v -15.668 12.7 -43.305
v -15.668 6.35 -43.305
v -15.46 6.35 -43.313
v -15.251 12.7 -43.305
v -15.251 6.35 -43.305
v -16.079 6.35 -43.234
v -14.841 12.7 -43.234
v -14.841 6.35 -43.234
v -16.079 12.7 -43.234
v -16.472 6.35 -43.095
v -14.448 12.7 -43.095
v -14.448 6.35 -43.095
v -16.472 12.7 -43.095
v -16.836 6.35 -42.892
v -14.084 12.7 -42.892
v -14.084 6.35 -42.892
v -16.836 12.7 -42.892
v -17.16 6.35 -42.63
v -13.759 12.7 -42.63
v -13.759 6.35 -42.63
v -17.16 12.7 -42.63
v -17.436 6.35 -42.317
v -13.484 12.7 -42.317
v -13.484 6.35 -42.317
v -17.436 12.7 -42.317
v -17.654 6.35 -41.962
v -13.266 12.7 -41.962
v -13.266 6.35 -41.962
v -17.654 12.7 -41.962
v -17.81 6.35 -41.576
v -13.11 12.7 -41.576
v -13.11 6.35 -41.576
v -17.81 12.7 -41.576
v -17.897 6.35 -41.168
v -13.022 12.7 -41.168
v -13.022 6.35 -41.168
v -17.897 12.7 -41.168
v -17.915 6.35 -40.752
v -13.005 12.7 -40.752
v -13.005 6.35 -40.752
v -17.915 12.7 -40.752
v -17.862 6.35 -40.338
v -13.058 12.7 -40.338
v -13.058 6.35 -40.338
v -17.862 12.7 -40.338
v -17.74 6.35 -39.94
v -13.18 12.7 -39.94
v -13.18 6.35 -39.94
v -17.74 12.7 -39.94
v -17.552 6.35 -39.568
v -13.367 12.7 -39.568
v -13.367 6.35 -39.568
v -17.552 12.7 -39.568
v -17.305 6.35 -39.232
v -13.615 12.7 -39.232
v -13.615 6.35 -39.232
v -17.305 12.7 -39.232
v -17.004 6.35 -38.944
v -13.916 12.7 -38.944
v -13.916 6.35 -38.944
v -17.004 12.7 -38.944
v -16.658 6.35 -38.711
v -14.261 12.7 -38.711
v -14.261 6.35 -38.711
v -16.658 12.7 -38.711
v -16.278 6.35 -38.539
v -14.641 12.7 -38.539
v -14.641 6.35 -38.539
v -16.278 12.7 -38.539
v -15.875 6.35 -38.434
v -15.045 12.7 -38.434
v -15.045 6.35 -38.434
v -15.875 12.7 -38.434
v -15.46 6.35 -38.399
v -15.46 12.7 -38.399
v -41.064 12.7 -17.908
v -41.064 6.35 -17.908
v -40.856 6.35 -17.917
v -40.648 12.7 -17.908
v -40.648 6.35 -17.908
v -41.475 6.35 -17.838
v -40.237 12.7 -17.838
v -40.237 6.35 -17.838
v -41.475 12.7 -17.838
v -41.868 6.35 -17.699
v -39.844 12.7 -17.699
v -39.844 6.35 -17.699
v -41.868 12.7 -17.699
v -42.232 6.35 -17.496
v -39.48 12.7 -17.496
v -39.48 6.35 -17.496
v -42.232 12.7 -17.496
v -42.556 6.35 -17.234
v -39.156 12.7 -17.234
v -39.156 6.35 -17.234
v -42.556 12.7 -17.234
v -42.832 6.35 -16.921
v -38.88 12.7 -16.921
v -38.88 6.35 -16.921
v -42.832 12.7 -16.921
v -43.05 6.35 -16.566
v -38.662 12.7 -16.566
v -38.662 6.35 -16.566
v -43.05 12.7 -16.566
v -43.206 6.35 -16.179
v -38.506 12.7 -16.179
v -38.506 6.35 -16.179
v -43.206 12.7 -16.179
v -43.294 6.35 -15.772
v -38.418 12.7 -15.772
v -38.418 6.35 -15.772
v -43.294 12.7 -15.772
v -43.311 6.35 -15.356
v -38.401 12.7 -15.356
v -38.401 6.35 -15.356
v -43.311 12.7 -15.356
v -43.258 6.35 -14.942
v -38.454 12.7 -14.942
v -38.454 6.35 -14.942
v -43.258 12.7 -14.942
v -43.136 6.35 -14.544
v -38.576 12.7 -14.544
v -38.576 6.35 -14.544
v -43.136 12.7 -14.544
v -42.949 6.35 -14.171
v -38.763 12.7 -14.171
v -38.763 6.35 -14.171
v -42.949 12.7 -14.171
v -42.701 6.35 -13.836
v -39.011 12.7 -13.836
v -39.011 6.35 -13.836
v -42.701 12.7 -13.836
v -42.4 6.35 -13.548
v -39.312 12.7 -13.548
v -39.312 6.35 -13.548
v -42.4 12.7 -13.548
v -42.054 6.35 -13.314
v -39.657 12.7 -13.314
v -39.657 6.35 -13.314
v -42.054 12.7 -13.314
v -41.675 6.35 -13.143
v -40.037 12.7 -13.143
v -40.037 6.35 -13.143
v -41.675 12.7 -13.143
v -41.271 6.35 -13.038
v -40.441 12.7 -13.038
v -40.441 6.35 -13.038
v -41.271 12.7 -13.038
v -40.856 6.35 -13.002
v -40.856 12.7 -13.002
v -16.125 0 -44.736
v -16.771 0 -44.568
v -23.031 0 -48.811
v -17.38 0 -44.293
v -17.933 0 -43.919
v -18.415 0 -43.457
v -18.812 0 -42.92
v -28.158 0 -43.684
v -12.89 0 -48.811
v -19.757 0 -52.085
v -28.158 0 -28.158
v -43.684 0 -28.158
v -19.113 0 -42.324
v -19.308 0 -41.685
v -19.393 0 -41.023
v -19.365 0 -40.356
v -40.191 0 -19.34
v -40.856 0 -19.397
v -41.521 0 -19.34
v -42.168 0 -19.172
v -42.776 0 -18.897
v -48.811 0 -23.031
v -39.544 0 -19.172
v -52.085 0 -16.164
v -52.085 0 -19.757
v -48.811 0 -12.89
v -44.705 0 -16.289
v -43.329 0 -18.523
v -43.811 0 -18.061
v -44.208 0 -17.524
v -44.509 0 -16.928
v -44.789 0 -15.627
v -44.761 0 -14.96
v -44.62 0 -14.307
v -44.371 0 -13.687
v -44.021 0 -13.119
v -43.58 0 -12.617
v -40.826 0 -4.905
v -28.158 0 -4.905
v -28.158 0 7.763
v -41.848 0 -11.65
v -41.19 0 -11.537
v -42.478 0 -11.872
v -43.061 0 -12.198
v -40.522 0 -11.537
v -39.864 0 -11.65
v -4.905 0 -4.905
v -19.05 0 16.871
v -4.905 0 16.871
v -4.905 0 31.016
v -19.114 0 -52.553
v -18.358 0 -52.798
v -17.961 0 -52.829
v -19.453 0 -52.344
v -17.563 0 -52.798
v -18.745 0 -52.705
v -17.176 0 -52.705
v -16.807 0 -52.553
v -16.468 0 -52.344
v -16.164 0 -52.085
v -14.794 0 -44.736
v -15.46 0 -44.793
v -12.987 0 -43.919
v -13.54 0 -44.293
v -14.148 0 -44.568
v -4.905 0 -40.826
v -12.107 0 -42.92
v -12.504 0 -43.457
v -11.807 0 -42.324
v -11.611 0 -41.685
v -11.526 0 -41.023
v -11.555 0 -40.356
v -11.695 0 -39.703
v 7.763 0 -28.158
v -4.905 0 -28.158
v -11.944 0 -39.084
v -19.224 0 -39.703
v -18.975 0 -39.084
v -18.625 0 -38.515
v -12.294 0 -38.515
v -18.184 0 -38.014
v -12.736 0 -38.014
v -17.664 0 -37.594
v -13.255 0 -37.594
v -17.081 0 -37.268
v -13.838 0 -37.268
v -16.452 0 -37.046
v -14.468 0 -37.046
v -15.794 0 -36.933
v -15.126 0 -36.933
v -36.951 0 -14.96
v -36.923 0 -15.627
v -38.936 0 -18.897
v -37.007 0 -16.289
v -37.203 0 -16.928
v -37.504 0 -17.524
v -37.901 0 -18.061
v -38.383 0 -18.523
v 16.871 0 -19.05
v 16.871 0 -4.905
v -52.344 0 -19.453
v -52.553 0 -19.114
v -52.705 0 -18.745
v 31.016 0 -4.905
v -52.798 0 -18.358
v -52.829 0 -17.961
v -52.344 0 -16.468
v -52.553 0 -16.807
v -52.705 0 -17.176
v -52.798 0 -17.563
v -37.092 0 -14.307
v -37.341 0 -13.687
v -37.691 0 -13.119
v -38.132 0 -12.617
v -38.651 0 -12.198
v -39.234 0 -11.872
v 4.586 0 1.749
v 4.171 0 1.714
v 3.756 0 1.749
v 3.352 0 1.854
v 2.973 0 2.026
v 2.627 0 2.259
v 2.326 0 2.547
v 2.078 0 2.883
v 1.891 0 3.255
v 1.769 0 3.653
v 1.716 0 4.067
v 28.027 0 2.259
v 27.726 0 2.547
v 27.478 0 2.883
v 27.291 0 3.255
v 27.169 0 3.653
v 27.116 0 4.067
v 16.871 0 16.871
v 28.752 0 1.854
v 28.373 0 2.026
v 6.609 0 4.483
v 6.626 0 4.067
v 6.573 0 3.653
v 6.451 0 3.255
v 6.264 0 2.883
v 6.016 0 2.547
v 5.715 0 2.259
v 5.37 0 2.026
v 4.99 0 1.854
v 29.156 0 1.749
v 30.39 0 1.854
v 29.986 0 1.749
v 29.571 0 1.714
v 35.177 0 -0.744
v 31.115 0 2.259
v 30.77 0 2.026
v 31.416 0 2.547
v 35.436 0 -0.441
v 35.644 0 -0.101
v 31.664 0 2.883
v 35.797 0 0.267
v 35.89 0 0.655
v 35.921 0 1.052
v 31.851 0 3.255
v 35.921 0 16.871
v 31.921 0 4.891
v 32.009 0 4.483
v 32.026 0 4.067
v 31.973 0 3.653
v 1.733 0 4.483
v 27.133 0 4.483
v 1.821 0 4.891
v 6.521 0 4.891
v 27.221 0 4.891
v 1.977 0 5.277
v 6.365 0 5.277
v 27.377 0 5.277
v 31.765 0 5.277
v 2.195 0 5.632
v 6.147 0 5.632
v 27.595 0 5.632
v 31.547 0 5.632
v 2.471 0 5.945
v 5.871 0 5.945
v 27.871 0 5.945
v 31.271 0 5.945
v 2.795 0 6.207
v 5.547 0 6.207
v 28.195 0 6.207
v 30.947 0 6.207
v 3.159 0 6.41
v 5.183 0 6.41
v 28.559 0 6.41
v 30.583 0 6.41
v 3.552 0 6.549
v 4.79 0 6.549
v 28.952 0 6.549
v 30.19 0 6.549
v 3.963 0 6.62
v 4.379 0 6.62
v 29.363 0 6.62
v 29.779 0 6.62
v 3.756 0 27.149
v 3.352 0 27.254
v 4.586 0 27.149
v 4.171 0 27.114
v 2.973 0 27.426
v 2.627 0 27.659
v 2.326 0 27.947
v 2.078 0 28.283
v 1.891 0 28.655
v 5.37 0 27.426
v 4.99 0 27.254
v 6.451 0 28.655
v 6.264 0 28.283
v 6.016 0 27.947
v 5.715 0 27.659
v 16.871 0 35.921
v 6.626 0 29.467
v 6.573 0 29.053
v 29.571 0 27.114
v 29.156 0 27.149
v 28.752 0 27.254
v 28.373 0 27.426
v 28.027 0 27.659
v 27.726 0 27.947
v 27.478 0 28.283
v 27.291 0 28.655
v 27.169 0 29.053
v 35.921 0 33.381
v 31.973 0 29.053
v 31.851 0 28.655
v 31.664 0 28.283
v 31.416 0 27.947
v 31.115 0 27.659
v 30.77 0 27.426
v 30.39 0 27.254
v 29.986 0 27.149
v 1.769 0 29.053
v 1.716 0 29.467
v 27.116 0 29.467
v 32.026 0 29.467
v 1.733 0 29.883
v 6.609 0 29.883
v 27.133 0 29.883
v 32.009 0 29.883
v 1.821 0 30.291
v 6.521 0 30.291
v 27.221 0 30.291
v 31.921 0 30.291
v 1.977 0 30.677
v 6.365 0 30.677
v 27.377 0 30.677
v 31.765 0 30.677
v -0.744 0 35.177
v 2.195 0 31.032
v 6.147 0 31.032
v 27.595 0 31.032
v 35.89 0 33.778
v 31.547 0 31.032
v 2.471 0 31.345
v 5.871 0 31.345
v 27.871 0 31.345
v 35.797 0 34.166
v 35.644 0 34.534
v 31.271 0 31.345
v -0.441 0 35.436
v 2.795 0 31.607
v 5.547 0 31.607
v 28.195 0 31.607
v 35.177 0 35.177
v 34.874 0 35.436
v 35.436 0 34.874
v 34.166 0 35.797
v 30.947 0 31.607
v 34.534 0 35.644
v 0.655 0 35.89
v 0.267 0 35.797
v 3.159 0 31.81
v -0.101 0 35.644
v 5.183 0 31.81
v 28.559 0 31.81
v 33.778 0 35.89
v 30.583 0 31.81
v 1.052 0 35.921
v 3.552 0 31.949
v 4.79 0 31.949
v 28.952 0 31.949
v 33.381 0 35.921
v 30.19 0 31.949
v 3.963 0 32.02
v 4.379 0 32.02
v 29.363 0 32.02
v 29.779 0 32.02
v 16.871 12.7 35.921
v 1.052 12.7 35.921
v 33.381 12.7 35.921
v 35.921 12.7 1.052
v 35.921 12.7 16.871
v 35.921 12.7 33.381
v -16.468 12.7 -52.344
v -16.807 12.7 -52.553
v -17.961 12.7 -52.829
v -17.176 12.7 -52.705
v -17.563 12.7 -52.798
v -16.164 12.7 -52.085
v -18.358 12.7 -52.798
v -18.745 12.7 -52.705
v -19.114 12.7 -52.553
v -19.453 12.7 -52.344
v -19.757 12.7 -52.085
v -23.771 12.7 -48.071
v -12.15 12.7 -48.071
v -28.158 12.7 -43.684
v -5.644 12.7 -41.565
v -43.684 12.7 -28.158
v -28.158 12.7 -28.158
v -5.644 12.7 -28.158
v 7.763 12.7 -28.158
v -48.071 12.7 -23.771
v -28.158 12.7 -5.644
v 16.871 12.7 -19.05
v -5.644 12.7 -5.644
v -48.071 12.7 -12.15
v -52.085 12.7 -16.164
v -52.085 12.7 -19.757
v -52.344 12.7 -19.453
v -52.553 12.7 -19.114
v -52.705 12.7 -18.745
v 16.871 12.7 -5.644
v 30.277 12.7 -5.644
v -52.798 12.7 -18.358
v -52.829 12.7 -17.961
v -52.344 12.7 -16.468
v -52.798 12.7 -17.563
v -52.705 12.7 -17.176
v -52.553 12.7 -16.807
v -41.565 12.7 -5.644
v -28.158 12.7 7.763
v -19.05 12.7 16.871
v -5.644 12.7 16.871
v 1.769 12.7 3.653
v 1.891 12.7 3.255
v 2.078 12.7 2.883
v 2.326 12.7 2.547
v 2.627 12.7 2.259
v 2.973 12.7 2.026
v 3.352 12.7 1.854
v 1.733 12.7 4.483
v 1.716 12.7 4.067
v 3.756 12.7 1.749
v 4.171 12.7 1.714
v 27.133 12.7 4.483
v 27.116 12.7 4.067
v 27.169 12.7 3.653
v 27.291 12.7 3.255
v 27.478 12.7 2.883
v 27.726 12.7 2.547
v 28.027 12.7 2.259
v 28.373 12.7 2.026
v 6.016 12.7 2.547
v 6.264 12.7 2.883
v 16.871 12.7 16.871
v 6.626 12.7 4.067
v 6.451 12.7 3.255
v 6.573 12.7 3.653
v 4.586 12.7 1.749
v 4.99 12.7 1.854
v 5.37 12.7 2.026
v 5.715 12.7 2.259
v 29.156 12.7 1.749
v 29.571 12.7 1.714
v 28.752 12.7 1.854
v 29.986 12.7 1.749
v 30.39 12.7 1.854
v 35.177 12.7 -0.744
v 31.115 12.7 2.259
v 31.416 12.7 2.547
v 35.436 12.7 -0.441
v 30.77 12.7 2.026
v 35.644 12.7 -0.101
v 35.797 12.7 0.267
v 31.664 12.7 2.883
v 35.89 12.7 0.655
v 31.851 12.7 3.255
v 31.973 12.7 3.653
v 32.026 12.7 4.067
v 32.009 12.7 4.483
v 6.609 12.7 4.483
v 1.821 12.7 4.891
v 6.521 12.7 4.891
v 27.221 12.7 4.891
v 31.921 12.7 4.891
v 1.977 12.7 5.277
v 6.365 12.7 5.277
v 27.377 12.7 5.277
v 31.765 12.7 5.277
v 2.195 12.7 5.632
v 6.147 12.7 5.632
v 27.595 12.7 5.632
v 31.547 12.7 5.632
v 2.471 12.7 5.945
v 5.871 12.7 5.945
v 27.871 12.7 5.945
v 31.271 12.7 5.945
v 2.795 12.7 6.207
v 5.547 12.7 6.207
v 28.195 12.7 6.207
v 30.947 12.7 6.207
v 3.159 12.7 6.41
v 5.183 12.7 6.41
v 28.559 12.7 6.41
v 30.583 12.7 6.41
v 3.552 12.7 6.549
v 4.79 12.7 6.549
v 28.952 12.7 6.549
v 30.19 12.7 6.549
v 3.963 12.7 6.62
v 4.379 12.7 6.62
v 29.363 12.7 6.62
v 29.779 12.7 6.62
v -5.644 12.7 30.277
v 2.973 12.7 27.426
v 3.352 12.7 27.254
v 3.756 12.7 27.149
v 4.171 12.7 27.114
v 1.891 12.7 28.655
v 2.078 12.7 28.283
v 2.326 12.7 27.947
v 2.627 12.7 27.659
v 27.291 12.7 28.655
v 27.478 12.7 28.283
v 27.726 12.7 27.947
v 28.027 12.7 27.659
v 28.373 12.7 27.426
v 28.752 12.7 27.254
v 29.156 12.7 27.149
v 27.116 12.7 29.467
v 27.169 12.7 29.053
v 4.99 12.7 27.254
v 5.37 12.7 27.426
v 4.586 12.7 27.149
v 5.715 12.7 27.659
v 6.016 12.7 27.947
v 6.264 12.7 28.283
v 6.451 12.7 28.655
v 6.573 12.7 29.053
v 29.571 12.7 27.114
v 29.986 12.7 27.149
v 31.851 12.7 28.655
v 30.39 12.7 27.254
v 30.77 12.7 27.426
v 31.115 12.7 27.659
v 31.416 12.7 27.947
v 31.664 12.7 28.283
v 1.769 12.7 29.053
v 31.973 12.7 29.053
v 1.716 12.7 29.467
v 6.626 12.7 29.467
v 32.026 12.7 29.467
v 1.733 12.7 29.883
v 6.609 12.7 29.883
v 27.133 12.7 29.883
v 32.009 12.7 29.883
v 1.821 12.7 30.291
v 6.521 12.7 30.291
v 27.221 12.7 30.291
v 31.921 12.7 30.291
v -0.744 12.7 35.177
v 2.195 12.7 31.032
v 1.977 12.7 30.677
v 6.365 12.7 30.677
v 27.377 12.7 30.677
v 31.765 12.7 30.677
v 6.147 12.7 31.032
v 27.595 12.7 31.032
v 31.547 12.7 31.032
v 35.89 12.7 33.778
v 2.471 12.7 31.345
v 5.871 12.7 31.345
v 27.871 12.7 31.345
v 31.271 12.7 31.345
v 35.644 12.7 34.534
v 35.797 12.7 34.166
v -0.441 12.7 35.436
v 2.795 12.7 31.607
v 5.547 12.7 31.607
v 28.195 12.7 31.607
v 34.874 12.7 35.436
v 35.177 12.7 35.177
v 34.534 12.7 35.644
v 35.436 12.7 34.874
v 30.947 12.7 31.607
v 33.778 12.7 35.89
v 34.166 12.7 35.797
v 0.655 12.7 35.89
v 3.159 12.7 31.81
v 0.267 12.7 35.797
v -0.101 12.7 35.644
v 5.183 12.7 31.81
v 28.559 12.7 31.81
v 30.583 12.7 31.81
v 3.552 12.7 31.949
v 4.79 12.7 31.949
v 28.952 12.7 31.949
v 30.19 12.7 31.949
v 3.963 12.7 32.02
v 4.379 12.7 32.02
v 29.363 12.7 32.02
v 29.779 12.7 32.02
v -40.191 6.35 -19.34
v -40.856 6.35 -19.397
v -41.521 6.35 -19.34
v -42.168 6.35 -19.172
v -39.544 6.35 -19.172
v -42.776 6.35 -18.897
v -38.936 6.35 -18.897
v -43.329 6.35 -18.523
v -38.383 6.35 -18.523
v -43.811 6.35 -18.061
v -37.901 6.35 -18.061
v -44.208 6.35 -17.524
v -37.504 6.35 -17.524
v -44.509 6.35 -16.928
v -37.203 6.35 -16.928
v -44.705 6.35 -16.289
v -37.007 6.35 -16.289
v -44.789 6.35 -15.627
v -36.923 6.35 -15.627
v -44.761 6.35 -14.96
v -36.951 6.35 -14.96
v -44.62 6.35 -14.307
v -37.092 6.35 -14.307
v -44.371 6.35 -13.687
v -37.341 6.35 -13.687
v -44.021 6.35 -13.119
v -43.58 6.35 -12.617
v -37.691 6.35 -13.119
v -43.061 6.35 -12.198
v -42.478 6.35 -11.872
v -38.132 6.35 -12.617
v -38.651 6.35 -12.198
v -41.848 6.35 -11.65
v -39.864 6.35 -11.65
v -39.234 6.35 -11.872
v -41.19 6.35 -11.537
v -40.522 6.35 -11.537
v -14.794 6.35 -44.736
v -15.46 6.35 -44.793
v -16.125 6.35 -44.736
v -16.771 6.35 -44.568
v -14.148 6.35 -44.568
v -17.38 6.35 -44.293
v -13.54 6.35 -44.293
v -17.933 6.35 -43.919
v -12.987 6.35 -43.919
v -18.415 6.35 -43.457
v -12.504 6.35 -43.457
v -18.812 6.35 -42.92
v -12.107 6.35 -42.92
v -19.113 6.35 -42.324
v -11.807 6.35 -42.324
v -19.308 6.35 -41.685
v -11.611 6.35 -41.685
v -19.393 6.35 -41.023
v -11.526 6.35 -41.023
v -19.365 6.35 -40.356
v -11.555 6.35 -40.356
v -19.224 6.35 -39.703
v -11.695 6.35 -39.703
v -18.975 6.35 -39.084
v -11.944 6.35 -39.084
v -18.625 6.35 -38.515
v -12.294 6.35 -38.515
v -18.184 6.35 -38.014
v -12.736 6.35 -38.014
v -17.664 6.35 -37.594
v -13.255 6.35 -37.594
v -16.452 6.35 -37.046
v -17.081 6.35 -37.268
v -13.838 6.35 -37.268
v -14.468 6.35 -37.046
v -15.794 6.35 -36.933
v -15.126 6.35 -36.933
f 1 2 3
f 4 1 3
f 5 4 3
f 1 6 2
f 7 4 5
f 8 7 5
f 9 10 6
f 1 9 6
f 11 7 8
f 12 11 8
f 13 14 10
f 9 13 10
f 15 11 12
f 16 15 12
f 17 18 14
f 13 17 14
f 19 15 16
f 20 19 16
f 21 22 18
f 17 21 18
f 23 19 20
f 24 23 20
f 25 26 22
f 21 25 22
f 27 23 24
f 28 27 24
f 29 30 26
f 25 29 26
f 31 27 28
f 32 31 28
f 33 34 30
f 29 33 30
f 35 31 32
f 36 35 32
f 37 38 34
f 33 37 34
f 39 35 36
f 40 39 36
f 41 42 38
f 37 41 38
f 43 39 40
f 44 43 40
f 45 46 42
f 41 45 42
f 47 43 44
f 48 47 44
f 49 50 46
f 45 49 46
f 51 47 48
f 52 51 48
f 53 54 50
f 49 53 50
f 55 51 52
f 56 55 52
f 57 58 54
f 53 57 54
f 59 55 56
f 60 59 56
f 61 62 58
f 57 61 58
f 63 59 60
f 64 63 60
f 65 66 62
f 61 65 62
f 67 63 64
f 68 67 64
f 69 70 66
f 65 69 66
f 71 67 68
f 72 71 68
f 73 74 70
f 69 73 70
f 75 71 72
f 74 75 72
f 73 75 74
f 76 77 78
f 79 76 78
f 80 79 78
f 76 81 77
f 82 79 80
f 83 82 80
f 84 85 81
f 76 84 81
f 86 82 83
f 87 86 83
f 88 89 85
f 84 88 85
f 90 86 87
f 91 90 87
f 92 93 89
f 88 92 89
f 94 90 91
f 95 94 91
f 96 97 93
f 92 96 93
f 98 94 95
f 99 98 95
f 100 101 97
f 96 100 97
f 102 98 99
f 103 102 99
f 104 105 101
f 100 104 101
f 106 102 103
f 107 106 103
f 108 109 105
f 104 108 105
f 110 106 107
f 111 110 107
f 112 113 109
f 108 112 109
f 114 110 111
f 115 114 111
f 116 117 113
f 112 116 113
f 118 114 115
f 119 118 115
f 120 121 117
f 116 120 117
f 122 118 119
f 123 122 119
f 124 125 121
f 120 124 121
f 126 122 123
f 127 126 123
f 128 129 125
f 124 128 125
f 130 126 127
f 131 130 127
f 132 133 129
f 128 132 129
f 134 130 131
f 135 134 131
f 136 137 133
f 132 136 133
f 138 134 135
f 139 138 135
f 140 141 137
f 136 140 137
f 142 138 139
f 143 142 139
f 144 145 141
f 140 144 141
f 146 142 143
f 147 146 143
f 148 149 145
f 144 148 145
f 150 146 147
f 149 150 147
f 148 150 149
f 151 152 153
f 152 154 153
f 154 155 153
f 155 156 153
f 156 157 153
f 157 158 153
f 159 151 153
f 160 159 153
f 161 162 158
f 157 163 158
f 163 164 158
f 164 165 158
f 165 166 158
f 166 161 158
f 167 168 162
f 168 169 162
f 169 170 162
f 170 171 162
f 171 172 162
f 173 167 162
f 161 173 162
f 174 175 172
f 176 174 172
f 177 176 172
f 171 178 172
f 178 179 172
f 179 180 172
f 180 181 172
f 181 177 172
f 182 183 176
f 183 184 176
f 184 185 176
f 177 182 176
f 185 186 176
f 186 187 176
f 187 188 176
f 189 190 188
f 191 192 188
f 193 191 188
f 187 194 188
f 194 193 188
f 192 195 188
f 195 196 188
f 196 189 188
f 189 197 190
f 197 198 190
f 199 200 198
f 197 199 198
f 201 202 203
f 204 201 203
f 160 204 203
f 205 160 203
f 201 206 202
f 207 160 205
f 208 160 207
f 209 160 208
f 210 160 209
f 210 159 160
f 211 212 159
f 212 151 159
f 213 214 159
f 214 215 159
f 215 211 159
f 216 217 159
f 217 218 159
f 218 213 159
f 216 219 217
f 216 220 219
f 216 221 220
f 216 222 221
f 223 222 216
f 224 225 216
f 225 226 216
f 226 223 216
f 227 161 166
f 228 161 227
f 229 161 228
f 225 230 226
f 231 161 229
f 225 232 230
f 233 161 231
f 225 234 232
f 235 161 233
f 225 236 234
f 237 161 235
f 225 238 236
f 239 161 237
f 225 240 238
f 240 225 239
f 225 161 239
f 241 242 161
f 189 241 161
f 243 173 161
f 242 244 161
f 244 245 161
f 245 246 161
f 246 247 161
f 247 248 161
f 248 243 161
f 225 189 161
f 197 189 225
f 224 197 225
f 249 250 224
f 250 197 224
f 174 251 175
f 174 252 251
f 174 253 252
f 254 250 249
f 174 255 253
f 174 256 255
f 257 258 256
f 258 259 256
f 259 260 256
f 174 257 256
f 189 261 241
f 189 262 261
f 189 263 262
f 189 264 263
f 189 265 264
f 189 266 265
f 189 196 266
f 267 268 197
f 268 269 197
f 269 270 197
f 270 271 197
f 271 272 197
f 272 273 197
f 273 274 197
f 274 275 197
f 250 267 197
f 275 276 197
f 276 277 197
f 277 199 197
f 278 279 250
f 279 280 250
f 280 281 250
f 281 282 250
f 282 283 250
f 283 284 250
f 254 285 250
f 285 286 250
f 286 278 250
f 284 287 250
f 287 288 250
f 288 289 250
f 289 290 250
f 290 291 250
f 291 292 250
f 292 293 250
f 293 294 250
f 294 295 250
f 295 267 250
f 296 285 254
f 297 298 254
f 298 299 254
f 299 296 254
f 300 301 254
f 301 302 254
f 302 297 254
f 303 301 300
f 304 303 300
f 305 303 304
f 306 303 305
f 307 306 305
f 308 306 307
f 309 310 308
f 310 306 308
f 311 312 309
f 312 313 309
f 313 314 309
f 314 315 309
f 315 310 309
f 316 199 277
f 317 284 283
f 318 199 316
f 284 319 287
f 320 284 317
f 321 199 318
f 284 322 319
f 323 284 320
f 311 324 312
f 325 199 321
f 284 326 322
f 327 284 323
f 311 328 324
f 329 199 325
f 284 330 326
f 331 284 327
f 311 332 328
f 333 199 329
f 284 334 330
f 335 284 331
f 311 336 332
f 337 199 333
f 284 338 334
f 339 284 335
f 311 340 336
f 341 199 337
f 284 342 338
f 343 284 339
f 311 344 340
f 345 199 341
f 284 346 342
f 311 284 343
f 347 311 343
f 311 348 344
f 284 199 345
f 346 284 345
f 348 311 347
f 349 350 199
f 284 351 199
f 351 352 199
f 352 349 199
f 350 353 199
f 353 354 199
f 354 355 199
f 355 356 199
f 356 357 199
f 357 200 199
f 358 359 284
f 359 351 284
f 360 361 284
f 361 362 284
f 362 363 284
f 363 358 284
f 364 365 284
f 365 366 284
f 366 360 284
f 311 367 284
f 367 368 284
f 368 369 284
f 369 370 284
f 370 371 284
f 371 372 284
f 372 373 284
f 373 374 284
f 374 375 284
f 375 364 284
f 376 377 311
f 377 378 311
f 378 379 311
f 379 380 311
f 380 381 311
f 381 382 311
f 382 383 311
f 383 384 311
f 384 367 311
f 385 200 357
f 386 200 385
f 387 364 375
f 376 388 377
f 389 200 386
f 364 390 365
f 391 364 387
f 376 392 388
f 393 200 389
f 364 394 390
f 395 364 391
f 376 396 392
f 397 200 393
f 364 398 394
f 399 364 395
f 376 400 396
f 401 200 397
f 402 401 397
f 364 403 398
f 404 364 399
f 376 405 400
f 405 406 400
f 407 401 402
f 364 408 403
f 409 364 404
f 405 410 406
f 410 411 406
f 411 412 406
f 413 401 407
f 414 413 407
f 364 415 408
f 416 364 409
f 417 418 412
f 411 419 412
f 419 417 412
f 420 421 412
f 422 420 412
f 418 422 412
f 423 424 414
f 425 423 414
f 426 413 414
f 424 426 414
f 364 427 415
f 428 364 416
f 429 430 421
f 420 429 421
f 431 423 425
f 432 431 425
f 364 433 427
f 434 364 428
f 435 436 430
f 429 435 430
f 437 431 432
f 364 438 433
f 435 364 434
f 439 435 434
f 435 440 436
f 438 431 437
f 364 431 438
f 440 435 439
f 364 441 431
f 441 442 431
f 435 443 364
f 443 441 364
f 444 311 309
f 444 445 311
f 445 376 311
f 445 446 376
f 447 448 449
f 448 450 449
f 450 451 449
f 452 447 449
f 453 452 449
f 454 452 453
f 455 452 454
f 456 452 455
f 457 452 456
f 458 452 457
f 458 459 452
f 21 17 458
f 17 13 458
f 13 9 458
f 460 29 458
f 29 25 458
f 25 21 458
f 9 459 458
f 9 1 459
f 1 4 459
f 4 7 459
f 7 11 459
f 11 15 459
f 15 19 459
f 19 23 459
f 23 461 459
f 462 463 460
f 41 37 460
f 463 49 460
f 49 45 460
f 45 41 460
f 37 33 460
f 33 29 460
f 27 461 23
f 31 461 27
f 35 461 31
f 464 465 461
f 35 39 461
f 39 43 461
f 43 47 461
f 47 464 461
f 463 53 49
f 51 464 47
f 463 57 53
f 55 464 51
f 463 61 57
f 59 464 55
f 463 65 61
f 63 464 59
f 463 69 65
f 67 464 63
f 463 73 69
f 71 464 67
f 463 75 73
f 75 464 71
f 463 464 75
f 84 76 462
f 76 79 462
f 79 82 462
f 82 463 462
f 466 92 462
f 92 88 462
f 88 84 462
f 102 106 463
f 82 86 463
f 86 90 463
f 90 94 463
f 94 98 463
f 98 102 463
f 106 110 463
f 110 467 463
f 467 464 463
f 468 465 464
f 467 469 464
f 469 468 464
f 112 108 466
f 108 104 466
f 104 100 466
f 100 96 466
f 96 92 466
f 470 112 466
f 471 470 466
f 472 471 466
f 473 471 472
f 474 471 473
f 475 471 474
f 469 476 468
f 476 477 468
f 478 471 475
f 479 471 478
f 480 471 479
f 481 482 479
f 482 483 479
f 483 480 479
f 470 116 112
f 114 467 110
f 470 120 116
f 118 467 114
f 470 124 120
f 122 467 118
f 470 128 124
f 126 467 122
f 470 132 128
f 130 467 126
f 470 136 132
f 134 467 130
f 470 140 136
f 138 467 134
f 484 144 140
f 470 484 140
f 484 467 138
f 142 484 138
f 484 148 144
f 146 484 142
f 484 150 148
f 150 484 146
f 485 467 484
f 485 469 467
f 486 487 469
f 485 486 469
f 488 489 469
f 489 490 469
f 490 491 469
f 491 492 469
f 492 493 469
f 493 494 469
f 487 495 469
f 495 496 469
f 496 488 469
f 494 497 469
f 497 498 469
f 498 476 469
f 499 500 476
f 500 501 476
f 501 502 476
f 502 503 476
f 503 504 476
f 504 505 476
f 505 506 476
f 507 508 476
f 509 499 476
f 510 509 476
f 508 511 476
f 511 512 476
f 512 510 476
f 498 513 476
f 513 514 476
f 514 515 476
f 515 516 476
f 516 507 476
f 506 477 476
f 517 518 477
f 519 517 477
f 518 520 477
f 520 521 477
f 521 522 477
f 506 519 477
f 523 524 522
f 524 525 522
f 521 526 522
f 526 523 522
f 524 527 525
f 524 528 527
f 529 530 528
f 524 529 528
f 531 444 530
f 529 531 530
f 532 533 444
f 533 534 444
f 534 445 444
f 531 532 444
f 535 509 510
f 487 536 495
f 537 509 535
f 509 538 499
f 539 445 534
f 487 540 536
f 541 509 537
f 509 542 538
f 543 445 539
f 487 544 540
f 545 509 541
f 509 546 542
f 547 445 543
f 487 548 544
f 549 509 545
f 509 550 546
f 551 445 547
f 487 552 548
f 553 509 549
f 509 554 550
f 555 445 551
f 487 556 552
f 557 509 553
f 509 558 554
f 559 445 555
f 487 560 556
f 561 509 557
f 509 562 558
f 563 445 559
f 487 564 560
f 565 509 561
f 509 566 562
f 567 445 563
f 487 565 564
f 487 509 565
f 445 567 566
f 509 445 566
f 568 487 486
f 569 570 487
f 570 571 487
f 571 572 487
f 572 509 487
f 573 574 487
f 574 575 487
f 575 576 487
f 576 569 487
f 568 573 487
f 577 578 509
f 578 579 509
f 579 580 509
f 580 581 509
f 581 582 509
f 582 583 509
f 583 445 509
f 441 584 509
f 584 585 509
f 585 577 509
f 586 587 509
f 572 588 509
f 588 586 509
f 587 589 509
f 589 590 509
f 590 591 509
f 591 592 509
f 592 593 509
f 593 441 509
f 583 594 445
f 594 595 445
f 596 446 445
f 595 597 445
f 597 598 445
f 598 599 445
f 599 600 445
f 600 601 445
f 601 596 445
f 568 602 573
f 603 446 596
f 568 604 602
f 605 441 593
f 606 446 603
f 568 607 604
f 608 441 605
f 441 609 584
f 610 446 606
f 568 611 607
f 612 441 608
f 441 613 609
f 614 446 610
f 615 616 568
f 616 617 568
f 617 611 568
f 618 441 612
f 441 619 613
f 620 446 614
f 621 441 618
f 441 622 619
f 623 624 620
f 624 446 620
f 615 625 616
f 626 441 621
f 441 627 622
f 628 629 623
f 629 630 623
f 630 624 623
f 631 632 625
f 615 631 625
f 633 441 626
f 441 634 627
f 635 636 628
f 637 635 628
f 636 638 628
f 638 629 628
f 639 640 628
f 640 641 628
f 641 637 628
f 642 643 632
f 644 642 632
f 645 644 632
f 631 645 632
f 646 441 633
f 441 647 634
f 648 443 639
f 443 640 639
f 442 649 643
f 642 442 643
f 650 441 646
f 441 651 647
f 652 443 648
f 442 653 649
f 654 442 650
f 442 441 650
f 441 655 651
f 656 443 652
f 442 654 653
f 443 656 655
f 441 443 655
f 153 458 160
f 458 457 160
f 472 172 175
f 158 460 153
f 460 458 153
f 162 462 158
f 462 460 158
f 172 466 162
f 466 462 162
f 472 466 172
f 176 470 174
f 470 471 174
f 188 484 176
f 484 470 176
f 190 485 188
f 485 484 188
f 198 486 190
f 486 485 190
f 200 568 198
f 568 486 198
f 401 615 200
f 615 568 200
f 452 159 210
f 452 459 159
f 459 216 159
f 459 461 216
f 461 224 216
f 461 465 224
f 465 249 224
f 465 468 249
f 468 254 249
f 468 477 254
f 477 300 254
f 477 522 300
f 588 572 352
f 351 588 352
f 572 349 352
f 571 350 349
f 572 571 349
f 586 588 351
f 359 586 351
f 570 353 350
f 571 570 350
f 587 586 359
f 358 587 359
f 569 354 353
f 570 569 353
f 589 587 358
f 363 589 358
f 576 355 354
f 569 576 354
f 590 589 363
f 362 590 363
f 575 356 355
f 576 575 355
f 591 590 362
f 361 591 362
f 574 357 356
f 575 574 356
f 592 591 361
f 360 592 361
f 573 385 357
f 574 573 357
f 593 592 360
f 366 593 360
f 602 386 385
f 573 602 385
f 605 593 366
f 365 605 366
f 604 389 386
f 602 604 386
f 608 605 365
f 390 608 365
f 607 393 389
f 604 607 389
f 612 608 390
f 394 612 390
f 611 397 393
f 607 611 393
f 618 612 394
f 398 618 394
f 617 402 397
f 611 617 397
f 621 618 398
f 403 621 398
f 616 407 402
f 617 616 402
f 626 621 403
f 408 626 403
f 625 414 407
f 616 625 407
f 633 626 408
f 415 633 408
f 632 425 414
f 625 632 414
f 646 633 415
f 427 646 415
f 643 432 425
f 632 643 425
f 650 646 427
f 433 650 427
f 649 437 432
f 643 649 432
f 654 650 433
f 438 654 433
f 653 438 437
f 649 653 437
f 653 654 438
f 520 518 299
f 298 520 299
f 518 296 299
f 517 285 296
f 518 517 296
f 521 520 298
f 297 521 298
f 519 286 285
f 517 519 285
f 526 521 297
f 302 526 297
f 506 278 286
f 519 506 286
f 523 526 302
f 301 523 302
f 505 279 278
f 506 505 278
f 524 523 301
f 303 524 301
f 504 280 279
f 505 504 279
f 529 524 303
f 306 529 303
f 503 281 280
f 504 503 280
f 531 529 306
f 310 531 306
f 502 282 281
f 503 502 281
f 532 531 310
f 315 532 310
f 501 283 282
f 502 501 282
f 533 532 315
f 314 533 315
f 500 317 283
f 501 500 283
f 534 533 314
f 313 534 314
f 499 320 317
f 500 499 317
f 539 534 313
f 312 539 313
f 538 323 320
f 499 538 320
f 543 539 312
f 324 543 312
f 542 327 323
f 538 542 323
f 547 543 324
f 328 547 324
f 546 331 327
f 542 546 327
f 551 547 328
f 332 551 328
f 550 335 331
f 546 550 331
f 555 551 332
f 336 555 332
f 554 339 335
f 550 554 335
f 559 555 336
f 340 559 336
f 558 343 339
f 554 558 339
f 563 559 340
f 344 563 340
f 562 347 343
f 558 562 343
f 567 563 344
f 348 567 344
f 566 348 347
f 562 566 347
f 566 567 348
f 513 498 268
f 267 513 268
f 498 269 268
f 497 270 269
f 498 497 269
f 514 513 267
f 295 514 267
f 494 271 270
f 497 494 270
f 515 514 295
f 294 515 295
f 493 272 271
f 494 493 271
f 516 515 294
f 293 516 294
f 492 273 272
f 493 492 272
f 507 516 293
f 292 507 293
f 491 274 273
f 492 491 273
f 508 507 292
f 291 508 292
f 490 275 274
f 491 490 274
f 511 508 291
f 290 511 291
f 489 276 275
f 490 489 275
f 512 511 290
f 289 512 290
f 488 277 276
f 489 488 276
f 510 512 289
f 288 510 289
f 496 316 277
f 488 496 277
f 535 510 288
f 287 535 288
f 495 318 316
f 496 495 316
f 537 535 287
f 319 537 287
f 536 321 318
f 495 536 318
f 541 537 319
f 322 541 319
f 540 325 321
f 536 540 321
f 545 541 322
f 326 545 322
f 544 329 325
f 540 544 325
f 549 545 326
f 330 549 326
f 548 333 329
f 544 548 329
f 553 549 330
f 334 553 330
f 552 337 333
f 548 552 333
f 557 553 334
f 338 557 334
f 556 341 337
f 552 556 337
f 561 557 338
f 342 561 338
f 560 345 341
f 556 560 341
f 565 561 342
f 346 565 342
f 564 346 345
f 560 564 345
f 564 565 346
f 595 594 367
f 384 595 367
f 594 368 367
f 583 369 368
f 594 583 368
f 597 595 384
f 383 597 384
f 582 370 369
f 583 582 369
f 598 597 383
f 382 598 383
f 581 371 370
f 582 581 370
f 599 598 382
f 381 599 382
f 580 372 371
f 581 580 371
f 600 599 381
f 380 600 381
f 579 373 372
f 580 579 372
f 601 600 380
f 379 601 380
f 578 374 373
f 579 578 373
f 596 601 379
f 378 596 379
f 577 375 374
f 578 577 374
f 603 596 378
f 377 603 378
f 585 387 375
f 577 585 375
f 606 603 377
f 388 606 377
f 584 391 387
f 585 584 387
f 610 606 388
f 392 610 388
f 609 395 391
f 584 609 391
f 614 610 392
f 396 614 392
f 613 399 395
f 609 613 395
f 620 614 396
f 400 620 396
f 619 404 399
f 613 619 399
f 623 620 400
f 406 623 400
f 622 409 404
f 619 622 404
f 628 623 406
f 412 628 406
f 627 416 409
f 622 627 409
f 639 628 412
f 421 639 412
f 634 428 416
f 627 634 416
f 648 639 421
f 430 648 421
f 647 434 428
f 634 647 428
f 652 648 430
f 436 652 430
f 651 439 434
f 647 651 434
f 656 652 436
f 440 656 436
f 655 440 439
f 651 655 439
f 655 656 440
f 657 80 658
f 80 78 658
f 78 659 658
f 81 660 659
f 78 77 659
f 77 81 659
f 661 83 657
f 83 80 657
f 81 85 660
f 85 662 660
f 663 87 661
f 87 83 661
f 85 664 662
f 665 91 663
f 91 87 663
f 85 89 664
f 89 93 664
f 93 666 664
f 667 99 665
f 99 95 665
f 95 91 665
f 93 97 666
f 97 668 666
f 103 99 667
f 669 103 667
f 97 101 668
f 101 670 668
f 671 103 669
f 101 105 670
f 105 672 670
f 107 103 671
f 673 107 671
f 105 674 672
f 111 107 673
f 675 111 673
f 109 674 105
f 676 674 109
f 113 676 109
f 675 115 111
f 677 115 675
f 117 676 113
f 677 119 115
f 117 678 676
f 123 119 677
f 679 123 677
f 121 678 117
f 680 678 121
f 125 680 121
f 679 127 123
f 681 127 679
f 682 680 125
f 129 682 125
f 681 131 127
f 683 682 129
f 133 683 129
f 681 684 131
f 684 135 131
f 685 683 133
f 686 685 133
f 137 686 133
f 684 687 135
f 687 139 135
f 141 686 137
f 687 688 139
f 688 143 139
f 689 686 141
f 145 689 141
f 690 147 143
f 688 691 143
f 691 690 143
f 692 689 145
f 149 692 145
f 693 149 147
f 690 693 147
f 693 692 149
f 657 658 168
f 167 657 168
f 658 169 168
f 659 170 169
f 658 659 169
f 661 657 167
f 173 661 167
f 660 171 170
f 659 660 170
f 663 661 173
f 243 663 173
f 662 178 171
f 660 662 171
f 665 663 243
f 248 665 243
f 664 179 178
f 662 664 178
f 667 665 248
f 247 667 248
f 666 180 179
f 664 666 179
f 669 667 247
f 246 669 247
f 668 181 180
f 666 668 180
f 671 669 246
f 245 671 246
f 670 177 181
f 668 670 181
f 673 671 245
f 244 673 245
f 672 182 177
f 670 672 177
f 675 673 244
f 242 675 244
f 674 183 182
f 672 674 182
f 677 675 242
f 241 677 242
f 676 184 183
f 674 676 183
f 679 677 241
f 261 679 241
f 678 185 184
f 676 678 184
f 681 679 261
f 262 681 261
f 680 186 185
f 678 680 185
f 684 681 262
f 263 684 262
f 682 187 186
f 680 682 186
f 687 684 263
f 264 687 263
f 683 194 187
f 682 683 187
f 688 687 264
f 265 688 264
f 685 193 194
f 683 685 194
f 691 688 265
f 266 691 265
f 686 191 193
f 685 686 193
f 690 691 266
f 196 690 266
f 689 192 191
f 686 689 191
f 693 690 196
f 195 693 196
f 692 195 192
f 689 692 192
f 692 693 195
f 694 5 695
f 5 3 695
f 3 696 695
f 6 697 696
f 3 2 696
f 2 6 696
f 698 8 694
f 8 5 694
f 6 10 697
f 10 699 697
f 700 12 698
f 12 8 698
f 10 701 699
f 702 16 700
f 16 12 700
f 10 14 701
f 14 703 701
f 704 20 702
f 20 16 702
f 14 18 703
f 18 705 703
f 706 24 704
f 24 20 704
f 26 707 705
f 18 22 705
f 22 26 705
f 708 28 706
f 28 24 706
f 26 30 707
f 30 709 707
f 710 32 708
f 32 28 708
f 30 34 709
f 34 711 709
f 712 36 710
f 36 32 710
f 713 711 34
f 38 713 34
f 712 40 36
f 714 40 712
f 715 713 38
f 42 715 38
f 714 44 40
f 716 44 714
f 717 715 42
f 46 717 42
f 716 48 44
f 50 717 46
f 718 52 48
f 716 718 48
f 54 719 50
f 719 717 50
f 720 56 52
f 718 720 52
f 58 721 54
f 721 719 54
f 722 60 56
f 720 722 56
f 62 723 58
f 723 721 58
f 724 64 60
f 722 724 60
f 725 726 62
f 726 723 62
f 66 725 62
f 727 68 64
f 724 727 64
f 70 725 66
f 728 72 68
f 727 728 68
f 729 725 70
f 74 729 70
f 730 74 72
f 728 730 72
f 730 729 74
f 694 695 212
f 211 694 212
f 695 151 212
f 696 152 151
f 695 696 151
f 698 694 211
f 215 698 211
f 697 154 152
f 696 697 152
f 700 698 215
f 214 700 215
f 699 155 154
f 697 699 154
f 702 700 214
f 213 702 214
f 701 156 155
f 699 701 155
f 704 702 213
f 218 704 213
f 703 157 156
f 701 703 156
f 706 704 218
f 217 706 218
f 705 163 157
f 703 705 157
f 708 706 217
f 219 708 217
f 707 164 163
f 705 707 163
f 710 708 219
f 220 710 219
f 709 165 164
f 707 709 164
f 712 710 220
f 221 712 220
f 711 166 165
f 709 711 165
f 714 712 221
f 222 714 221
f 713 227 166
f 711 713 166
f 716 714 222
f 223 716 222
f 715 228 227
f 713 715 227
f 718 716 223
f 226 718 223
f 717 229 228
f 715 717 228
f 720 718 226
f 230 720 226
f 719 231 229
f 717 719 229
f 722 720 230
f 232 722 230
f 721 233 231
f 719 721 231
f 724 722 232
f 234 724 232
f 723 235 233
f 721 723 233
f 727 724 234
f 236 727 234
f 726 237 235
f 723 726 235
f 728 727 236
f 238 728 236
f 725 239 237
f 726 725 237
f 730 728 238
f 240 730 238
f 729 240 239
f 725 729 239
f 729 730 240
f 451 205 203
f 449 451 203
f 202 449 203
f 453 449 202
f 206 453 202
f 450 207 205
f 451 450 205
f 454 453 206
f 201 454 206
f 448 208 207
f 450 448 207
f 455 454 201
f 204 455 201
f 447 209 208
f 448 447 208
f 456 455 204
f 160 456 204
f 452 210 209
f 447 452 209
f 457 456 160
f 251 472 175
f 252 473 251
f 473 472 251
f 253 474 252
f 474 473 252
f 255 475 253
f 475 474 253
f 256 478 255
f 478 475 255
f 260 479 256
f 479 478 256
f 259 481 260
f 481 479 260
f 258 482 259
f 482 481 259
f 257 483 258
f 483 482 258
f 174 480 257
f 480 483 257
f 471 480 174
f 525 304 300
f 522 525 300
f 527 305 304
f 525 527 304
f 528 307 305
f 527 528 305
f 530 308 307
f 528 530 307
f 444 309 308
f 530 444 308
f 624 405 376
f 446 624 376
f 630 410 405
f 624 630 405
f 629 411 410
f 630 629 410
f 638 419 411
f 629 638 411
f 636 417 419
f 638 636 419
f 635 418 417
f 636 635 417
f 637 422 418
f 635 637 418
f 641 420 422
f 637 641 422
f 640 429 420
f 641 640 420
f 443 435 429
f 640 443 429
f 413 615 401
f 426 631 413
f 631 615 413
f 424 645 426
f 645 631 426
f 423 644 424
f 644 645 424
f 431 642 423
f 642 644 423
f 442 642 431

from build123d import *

# Parameters (mm, degrees)
SKETCH3_W             = 35.921024484
SKETCH3_H             = 35.921024484
BOSS_EXTRUDE2_DEPTH   = 12.7
BOSS_EXTRUDE3_DEPTH   = 25.4
F_8_CLEARANCE_HOLE1_D = 4.9149
F_8_CLEARANCE_HOLE2_D = 4.9149
SKETCH10_R            = 3.937
CUT_EXTRUDE1_DEPTH    = 6.35
FILLET1_R             = 2.54


with BuildPart() as part:
    # Sketch3 → Boss-Extrude2 (new body)
    with BuildSketch(Plane(origin=(0, 0, 0), x_dir=(1, 0, 0), z_dir=(0, 1, 0))):
        with Locations((17.960512242, -17.960512242)):
            Rectangle(SKETCH3_W, SKETCH3_H)
    extrude(amount=BOSS_EXTRUDE2_DEPTH)

    # Sketch4 → Boss-Extrude3 (add, symmetric)
    with BuildSketch(Plane(origin=(0, 0, 0), x_dir=(0.7071067811865476, 0, 0.7071067811865475), z_dir=(-0.7071067811865475, 0, 0.7071067811865476))):
        Polygon((25.4, 12.7), (-25.4, 12.7), (-50.8, 12.7), (-50.8, 0), (0, 0), (25.4, 0), align=None)
    extrude(amount=BOSS_EXTRUDE3_DEPTH, both=True)

    # #8 Clearance Hole1 (through all)
    with Locations(Plane(origin=(0, 0, 0), x_dir=(-1, 0, 0), z_dir=(0, -1, 0))):
        with Locations((-29.571024484, -29.571024484), (-4.171024484, -4.171024484), (-29.571024484, -4.171024484), (-4.171024484, -29.571024484)):
            Hole(F_8_CLEARANCE_HOLE1_D / 2)

    # #8 Clearance Hole2 (through all)
    with Locations(Plane(origin=(0, 12.7, 0), x_dir=(1, 0, 0), z_dir=(0, 1, 0))):
        with Locations((-40.855979707, 15.459815396), (-15.459815396, 40.855979707)):
            Hole(F_8_CLEARANCE_HOLE2_D / 2)

    # Sketch10 → Cut-Extrude1 (cut)
    with BuildSketch(Plane.XZ):
        with Locations(Location((-40.855979707, -15.459815396, 0), (0, 0, 270))):
            Circle(SKETCH10_R)
        with Locations(Location((-15.459815396, -40.855979707, 0), (0, 0, 270))):
            Circle(SKETCH10_R)
    extrude(amount=-CUT_EXTRUDE1_DEPTH, mode=Mode.SUBTRACT)

    # Fillet1
    fillet1_edges = [part.edges().sort_by_distance(p)[0] for p in [
        (-17.960512242, 6.35, -53.881536726),
        (-53.881536726, 6.35, -17.960512242),
        (35.921024484, 6.35, 0),
        (35.921024484, 6.35, 35.921024484),
        (0, 6.35, 35.921024484),
    ]]
    fillet(fillet1_edges, radius=FILLET1_R)


solid = part.part
